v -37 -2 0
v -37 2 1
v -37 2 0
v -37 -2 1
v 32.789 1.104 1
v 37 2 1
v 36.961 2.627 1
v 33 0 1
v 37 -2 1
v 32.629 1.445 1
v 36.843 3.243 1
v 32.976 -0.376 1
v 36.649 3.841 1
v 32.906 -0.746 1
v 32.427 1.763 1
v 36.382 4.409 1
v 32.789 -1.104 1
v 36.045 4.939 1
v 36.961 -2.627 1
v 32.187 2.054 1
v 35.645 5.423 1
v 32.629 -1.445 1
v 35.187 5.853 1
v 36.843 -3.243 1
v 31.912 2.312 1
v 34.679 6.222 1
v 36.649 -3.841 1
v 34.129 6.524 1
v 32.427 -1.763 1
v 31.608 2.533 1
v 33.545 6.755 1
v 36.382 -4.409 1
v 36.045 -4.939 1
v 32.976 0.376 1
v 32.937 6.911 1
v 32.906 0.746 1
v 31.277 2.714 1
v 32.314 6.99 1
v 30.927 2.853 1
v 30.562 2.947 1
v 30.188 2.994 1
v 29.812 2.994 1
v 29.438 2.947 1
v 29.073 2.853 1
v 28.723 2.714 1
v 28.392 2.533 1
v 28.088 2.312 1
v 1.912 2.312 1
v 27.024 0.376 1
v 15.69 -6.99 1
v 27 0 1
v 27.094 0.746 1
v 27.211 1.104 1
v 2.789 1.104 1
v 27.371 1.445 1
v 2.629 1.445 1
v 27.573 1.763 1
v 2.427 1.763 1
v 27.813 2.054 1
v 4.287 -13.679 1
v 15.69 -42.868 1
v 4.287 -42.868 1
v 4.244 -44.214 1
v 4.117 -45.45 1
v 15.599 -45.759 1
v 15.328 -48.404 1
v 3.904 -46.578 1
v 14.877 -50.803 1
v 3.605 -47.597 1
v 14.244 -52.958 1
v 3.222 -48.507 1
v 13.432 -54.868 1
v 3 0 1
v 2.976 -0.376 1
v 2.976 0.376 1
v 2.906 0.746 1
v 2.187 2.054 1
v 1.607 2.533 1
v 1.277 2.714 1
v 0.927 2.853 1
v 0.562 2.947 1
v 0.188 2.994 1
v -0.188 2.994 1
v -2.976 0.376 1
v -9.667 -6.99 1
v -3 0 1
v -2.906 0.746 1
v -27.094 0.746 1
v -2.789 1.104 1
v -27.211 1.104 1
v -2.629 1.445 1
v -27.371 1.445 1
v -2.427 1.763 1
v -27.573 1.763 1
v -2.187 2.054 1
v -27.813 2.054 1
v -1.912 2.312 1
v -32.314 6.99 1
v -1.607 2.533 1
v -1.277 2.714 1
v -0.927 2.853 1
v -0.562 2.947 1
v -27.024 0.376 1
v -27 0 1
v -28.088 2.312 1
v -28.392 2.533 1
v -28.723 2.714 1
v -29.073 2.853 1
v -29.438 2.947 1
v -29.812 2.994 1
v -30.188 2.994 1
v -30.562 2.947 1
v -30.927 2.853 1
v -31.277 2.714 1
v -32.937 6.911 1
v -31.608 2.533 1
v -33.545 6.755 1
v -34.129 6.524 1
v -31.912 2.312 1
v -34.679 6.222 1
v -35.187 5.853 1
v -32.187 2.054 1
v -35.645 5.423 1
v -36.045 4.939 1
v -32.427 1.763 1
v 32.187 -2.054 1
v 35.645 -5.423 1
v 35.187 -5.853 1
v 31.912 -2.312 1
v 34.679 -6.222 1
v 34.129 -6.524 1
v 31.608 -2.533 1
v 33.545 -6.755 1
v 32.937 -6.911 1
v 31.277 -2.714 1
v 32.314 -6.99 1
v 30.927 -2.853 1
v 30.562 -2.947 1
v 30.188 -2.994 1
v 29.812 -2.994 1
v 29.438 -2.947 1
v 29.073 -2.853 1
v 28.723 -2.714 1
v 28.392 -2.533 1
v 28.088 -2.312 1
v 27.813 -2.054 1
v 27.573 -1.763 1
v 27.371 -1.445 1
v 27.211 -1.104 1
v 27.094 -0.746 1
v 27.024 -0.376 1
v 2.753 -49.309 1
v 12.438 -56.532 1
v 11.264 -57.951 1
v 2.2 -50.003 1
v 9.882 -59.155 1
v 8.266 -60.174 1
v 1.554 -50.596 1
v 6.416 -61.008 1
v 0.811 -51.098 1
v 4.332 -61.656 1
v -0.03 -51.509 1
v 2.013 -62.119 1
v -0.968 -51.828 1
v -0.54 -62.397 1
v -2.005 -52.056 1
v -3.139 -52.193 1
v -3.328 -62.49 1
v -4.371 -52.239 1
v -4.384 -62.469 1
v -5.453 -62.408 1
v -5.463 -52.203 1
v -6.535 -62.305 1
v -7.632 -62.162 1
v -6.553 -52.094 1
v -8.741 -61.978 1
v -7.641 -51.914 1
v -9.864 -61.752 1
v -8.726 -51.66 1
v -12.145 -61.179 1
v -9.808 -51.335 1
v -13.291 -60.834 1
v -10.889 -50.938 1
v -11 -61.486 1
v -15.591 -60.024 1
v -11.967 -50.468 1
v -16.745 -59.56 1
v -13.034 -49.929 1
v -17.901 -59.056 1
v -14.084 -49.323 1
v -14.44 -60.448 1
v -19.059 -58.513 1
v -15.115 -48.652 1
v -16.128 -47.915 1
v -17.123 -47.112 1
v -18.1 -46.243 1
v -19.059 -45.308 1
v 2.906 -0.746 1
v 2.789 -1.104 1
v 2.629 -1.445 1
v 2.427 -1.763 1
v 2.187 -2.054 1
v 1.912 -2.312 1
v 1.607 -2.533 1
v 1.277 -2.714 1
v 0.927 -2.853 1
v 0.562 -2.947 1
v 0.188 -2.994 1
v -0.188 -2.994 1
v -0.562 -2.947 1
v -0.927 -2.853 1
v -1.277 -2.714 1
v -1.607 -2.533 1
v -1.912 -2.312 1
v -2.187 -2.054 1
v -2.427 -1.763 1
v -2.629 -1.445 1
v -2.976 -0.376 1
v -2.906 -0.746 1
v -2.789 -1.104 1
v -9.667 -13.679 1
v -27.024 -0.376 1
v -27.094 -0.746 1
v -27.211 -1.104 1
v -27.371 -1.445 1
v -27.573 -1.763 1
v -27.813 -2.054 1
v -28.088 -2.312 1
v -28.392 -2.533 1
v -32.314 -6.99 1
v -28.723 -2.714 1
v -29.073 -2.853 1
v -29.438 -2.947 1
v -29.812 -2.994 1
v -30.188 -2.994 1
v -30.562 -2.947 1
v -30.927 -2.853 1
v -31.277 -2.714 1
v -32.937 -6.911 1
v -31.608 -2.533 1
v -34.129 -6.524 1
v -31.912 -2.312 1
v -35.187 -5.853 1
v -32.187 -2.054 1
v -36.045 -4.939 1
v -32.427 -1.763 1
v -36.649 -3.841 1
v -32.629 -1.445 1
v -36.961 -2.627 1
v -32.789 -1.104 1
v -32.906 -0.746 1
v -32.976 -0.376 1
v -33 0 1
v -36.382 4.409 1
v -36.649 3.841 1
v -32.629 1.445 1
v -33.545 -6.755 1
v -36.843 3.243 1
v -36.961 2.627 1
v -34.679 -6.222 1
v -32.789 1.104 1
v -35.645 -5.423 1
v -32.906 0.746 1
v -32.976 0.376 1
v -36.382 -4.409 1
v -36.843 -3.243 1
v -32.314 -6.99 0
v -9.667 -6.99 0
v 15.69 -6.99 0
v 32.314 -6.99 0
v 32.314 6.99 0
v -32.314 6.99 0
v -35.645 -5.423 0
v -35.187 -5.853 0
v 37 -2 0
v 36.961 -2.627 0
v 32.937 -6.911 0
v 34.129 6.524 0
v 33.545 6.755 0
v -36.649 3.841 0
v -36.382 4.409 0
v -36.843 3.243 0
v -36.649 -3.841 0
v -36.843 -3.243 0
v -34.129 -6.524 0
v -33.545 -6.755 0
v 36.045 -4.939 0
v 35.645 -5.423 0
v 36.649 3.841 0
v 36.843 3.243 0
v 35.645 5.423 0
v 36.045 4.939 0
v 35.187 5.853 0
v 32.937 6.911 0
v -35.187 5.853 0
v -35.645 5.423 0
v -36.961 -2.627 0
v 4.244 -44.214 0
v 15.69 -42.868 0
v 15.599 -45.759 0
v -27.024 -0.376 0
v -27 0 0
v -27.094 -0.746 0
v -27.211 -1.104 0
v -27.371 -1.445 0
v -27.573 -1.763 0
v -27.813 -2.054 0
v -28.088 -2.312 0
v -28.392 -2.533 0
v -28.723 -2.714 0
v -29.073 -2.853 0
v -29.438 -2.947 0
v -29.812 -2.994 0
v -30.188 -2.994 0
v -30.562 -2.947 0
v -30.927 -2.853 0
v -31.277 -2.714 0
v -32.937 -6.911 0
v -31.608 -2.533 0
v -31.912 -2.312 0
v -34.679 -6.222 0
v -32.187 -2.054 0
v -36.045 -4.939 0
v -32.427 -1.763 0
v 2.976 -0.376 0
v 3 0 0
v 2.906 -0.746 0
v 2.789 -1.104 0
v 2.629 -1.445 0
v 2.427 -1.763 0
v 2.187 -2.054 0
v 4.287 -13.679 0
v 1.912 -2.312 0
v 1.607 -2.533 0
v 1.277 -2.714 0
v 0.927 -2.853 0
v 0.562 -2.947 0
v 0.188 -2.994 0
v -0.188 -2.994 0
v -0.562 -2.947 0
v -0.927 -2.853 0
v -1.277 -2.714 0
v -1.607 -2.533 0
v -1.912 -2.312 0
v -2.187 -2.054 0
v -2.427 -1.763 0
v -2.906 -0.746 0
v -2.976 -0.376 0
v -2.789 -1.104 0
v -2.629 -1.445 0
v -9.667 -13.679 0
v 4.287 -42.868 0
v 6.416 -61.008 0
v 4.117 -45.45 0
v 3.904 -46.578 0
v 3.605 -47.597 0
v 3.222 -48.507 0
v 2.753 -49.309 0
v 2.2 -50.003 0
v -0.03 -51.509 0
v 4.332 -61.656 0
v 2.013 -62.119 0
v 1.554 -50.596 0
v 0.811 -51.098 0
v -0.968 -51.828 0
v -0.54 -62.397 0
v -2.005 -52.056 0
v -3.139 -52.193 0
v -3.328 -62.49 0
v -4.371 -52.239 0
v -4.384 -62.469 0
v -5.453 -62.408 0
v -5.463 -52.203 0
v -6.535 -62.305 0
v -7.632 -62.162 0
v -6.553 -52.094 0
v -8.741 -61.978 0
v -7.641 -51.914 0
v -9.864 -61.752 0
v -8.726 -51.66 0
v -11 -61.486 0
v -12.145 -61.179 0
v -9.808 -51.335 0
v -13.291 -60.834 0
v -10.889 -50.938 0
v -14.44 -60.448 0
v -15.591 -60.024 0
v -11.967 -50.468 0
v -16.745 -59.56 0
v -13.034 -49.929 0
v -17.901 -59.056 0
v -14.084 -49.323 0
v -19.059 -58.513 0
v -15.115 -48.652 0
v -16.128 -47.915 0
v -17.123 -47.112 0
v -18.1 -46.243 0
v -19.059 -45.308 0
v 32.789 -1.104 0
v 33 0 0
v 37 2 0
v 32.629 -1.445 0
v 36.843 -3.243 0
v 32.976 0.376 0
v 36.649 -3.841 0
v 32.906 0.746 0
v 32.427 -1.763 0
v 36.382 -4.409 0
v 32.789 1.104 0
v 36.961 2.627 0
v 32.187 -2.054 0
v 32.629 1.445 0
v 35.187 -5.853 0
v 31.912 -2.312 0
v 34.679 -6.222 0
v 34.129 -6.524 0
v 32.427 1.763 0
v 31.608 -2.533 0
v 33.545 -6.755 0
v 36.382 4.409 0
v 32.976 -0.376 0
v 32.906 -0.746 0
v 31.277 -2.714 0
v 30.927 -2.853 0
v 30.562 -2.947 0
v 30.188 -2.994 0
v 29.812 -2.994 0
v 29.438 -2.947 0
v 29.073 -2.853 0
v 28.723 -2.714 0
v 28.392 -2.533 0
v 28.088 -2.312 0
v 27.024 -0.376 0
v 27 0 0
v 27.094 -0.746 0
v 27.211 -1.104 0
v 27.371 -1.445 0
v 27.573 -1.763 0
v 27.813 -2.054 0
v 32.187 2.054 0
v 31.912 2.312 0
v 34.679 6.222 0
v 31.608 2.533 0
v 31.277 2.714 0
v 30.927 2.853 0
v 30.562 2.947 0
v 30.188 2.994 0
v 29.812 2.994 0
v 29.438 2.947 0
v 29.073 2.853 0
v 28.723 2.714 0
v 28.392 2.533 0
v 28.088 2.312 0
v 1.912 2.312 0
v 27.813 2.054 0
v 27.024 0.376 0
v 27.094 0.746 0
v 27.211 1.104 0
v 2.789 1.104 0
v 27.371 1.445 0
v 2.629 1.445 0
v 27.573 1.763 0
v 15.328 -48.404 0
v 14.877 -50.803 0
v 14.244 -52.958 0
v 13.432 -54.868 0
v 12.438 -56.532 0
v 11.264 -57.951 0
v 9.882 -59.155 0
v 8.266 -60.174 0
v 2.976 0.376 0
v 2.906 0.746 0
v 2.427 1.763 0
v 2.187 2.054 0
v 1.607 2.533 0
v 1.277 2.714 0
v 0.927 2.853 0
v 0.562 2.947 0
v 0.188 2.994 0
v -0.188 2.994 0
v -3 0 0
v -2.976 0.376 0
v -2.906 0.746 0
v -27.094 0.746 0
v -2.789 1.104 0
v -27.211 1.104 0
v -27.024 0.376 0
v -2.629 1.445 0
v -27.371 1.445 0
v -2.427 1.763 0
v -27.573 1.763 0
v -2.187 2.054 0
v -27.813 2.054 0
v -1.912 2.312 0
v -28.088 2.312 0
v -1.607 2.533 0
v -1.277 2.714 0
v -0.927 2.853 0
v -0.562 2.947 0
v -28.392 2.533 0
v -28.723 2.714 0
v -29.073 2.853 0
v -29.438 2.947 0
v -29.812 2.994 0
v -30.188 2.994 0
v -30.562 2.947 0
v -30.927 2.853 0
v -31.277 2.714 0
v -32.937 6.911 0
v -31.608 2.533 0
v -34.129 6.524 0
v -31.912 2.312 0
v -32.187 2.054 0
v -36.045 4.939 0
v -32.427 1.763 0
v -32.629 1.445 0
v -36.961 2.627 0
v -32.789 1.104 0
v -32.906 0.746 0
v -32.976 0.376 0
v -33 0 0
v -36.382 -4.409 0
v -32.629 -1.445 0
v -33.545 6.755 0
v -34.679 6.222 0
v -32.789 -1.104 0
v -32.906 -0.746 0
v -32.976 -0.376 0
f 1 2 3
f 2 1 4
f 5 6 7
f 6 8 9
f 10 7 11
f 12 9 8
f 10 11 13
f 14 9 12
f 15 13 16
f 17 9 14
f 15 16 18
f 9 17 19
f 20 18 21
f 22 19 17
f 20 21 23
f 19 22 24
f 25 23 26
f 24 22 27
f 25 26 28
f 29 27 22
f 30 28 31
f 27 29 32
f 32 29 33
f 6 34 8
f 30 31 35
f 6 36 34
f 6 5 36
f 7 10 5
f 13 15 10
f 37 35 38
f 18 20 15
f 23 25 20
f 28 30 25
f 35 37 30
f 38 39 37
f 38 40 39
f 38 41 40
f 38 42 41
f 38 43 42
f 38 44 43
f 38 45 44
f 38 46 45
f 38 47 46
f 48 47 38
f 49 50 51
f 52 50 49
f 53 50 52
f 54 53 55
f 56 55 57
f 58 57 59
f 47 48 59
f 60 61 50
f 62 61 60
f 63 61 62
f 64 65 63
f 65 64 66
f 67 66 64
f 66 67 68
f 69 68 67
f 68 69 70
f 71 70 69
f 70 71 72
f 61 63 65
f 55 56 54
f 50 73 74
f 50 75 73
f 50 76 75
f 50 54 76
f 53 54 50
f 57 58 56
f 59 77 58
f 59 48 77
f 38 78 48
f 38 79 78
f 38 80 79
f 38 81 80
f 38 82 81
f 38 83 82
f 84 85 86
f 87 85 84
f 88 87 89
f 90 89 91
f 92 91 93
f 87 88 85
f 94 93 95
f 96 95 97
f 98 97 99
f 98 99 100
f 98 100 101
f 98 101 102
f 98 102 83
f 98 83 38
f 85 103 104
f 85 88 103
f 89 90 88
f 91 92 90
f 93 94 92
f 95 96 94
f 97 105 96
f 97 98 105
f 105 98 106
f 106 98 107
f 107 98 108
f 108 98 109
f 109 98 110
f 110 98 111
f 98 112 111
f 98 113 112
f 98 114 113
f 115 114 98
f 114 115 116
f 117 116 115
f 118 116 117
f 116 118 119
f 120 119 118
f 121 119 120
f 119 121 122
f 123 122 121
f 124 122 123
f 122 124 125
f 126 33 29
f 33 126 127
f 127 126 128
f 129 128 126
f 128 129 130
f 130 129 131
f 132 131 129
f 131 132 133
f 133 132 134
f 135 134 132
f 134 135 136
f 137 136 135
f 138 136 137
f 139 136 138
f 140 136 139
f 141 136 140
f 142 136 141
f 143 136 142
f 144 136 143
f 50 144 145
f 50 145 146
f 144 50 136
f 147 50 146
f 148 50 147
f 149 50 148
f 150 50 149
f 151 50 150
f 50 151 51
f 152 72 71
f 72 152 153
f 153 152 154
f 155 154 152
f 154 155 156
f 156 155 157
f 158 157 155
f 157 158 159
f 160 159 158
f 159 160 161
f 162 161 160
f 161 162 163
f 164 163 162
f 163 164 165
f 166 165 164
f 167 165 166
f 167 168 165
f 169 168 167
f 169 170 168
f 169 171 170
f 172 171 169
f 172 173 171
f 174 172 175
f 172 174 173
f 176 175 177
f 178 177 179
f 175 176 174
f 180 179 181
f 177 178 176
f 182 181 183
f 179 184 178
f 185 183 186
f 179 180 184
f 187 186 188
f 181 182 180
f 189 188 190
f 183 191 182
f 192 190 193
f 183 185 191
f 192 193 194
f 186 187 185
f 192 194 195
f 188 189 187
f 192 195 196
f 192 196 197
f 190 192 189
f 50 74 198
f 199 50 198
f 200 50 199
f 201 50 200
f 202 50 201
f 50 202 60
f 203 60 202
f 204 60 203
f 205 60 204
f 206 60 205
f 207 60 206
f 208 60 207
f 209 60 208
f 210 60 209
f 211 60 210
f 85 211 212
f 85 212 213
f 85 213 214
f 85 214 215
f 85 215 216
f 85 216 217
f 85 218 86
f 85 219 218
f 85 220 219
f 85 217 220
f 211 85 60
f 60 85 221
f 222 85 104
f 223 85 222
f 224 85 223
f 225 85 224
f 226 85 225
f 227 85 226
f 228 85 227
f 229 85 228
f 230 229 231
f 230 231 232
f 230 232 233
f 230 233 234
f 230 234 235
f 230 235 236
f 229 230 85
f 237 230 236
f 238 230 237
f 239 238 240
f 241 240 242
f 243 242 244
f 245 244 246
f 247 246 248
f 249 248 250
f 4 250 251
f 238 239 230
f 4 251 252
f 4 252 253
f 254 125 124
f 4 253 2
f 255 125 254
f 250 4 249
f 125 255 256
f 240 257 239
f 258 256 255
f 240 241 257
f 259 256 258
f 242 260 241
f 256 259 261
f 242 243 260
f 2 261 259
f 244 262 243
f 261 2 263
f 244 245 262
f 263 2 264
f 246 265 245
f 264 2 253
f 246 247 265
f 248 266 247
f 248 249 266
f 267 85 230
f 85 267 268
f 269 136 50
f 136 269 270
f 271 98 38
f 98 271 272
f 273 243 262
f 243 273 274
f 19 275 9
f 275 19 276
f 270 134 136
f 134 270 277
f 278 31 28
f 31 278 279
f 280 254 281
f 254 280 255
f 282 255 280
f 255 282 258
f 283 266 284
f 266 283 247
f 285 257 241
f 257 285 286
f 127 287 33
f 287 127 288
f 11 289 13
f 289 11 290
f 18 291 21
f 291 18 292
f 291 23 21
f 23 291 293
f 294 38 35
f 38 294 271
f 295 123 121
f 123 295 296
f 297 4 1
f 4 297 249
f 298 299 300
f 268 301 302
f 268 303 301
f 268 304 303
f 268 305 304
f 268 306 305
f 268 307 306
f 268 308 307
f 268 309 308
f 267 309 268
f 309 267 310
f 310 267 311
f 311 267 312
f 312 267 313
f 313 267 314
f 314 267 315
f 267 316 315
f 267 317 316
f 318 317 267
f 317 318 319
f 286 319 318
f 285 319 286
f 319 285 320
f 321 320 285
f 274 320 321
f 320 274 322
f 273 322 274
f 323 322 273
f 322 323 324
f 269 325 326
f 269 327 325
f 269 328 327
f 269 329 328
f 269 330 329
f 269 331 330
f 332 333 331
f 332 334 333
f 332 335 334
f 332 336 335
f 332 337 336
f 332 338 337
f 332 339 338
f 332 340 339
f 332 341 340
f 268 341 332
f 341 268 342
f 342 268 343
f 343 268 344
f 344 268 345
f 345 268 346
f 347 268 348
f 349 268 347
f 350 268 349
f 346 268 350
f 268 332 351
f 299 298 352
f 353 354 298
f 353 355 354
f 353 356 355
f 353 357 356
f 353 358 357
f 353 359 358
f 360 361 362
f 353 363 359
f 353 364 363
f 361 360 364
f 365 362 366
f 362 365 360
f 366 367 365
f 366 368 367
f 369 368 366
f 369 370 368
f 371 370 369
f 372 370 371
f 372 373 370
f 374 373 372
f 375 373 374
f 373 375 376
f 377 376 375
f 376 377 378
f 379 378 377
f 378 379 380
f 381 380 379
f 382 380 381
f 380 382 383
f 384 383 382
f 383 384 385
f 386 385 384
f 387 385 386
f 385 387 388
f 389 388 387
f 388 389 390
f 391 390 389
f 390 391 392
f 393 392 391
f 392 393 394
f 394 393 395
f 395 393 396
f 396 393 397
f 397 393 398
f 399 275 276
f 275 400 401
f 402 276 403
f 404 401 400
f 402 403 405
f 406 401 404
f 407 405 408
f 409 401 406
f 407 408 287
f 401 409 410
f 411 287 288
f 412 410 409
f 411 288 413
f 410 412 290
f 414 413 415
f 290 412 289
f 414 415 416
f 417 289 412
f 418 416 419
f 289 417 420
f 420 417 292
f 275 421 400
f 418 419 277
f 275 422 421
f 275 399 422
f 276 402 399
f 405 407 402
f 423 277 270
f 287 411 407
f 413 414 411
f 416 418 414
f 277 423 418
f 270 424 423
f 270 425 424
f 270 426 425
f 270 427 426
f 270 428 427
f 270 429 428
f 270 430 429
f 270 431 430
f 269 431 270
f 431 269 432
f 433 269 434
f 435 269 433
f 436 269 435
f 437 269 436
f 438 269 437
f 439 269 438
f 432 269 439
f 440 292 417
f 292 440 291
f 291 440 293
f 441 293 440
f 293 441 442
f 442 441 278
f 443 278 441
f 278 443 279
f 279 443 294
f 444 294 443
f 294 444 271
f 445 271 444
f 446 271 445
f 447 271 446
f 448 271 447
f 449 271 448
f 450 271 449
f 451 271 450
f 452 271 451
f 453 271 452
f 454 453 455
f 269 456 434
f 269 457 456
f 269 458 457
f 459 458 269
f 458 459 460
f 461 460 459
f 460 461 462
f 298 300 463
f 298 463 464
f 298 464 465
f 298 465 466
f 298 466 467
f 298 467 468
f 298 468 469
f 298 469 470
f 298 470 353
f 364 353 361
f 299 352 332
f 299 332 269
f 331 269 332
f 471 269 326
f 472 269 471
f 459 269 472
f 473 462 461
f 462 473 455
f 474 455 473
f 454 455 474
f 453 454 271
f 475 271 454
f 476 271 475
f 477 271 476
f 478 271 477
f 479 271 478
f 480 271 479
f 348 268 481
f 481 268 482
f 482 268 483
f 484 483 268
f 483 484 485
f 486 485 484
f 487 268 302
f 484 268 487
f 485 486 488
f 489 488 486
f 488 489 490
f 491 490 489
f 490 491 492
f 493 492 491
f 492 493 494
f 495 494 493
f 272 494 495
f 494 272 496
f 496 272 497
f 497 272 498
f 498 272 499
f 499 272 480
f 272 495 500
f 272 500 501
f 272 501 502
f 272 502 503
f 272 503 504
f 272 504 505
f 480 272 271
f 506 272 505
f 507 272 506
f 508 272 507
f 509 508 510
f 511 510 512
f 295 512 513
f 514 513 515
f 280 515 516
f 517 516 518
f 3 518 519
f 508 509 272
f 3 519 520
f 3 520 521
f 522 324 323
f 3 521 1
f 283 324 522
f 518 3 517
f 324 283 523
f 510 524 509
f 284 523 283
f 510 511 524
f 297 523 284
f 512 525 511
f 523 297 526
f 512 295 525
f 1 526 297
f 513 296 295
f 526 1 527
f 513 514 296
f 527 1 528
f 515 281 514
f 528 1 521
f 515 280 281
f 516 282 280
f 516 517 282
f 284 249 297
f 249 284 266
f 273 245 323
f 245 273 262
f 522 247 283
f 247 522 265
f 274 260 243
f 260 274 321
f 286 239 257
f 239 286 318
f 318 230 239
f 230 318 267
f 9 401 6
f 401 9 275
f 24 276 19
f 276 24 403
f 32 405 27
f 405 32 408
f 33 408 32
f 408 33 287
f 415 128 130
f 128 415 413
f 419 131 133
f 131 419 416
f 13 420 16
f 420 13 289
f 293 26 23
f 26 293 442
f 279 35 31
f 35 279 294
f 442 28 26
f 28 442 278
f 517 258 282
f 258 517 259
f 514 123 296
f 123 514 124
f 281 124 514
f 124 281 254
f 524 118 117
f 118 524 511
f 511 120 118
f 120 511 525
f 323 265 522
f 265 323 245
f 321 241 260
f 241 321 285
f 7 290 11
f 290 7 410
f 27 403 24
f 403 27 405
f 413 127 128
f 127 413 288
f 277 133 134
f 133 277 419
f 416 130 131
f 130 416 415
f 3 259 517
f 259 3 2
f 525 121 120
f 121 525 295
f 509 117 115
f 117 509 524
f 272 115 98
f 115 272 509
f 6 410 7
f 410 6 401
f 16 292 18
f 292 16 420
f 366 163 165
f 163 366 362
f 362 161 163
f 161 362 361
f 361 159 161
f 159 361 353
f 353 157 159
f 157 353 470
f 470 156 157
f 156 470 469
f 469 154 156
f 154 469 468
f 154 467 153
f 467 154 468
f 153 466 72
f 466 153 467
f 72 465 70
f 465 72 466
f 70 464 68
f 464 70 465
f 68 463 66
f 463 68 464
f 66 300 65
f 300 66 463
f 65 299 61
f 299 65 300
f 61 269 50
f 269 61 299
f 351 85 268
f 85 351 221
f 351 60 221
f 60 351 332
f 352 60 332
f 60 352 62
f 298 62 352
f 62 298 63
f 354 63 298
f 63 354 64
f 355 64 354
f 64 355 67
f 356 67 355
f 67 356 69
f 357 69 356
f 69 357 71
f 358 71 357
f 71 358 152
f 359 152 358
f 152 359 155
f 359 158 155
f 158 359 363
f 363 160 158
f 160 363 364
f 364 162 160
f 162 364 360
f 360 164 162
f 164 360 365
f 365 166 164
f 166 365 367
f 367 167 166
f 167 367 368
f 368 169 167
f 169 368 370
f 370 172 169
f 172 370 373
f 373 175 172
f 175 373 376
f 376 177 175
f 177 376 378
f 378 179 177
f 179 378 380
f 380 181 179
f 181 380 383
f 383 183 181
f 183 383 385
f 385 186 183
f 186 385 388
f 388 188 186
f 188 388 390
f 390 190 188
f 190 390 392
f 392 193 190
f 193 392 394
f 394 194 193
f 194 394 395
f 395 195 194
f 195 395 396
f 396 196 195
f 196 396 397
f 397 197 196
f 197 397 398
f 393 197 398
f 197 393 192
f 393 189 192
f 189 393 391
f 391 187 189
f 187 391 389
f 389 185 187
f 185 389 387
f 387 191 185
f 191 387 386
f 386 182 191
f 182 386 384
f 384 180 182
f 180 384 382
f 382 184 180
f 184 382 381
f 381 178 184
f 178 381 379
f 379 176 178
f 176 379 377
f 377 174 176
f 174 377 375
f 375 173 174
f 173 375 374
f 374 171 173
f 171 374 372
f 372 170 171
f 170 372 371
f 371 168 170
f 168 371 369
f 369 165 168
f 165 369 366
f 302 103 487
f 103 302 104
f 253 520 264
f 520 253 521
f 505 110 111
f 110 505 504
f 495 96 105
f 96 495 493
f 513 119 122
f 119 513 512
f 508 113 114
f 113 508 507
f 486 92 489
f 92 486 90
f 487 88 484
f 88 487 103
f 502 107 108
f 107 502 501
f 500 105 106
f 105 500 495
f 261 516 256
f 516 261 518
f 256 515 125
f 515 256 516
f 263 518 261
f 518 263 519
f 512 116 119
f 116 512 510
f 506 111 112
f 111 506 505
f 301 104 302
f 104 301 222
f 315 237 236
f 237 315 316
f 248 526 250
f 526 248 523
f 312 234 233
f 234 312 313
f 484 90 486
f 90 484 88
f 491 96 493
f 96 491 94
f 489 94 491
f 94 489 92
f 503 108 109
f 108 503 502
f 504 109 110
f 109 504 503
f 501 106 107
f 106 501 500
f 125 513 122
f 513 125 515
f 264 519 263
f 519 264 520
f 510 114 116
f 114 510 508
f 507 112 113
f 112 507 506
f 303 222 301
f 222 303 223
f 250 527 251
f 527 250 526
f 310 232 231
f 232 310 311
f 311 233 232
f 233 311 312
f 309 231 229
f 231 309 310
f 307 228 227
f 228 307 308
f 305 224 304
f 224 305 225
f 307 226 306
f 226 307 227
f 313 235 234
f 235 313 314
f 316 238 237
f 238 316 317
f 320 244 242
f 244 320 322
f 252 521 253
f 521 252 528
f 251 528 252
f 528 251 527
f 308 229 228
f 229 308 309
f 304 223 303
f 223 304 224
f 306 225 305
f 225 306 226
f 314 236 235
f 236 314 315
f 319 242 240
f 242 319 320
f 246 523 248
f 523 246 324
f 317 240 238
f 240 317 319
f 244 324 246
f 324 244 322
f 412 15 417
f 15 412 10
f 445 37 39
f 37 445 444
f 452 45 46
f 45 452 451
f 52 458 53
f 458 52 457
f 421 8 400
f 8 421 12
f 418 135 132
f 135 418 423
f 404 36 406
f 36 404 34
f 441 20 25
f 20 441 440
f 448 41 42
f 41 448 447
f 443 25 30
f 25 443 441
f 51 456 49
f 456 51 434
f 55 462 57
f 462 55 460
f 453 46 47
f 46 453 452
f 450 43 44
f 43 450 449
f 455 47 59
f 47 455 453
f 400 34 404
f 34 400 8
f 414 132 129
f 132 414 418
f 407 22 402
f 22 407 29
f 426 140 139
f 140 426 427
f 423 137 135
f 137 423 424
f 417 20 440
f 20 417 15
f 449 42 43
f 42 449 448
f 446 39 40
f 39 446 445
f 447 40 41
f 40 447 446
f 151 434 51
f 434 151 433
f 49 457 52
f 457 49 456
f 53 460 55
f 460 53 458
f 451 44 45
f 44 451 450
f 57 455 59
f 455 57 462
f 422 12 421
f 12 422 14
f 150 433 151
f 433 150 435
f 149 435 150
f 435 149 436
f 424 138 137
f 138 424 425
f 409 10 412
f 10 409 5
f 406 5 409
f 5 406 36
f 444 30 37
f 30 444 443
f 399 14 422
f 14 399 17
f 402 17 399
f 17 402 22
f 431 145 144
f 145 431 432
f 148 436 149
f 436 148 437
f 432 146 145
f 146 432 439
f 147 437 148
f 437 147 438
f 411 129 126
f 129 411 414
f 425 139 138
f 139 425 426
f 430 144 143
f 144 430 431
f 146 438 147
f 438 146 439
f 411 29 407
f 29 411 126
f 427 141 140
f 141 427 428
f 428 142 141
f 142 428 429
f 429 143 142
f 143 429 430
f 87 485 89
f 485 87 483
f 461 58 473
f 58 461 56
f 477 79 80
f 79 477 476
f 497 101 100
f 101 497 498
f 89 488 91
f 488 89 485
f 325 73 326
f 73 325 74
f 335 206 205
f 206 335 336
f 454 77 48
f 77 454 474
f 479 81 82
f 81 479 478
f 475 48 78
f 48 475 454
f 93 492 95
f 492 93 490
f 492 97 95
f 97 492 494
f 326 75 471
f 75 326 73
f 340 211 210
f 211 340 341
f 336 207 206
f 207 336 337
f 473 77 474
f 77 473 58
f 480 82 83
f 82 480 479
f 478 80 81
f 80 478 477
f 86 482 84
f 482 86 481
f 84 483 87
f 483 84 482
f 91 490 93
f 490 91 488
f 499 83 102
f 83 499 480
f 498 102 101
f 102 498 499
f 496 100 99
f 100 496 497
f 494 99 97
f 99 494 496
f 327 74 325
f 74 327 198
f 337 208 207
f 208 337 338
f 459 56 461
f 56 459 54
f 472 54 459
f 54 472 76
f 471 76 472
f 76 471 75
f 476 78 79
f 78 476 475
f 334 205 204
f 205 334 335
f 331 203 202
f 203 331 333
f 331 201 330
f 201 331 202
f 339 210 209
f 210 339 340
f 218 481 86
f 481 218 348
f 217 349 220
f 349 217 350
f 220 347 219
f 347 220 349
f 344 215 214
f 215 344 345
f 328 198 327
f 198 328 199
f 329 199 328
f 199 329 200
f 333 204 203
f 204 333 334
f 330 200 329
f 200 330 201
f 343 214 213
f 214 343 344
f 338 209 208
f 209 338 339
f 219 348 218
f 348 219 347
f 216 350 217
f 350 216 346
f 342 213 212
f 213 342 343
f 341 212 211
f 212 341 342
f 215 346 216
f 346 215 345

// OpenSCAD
$fn = 50;


difference() {
	union() {
		translate(v = [0, 0, 0]) {
			rotate(a = [0, 0, 0]) {
				hull() {
					translate(v = [-32.0000000000, 2.0000000000, 0]) {
						rotate(a = [0, 0, 0]) {
							translate(v = [0, 0, 0]) {
								rotate(a = [0, 0, 0]) {
									cylinder(h = 1, r = 5);
								}
							}
						}
					}
					translate(v = [32.0000000000, 2.0000000000, 0]) {
						rotate(a = [0, 0, 0]) {
							translate(v = [0, 0, 0]) {
								rotate(a = [0, 0, 0]) {
									cylinder(h = 1, r = 5);
								}
							}
						}
					}
					translate(v = [-32.0000000000, -2.0000000000, 0]) {
						rotate(a = [0, 0, 0]) {
							translate(v = [0, 0, 0]) {
								rotate(a = [0, 0, 0]) {
									cylinder(h = 1, r = 5);
								}
							}
						}
					}
					translate(v = [32.0000000000, -2.0000000000, 0]) {
						rotate(a = [0, 0, 0]) {
							translate(v = [0, 0, 0]) {
								rotate(a = [0, 0, 0]) {
									cylinder(h = 1, r = 5);
								}
							}
						}
					}
				}
			}
		}
		translate(v = [0, -5, 0]) {
			rotate(a = [0, 0, 0]) {
				linear_extrude(height = 1) {
					text(font = "DejaVu Sans Mono:style=Bold", halign = "center", size = 57.0000000000, text = "J", valign = "top");
				}
			}
		}
	}
	union() {
		translate(v = [-30.0000000000, 0.0000000000, -125.0000000000]) {
			rotate(a = [0, 0, 0]) {
				cylinder(h = 250, r = 3.0000000000);
			}
		}
		translate(v = [30.0000000000, 0.0000000000, -125.0000000000]) {
			rotate(a = [0, 0, 0]) {
				cylinder(h = 250, r = 3.0000000000);
			}
		}
		translate(v = [30.0000000000, 0.0000000000, -125.0000000000]) {
			rotate(a = [0, 0, 0]) {
				cylinder(h = 250, r = 3.0000000000);
			}
		}
		translate(v = [0, 0, -125.0000000000]) {
			rotate(a = [0, 0, 0]) {
				cylinder(h = 250, r = 3.0000000000);
			}
		}
	}
}
